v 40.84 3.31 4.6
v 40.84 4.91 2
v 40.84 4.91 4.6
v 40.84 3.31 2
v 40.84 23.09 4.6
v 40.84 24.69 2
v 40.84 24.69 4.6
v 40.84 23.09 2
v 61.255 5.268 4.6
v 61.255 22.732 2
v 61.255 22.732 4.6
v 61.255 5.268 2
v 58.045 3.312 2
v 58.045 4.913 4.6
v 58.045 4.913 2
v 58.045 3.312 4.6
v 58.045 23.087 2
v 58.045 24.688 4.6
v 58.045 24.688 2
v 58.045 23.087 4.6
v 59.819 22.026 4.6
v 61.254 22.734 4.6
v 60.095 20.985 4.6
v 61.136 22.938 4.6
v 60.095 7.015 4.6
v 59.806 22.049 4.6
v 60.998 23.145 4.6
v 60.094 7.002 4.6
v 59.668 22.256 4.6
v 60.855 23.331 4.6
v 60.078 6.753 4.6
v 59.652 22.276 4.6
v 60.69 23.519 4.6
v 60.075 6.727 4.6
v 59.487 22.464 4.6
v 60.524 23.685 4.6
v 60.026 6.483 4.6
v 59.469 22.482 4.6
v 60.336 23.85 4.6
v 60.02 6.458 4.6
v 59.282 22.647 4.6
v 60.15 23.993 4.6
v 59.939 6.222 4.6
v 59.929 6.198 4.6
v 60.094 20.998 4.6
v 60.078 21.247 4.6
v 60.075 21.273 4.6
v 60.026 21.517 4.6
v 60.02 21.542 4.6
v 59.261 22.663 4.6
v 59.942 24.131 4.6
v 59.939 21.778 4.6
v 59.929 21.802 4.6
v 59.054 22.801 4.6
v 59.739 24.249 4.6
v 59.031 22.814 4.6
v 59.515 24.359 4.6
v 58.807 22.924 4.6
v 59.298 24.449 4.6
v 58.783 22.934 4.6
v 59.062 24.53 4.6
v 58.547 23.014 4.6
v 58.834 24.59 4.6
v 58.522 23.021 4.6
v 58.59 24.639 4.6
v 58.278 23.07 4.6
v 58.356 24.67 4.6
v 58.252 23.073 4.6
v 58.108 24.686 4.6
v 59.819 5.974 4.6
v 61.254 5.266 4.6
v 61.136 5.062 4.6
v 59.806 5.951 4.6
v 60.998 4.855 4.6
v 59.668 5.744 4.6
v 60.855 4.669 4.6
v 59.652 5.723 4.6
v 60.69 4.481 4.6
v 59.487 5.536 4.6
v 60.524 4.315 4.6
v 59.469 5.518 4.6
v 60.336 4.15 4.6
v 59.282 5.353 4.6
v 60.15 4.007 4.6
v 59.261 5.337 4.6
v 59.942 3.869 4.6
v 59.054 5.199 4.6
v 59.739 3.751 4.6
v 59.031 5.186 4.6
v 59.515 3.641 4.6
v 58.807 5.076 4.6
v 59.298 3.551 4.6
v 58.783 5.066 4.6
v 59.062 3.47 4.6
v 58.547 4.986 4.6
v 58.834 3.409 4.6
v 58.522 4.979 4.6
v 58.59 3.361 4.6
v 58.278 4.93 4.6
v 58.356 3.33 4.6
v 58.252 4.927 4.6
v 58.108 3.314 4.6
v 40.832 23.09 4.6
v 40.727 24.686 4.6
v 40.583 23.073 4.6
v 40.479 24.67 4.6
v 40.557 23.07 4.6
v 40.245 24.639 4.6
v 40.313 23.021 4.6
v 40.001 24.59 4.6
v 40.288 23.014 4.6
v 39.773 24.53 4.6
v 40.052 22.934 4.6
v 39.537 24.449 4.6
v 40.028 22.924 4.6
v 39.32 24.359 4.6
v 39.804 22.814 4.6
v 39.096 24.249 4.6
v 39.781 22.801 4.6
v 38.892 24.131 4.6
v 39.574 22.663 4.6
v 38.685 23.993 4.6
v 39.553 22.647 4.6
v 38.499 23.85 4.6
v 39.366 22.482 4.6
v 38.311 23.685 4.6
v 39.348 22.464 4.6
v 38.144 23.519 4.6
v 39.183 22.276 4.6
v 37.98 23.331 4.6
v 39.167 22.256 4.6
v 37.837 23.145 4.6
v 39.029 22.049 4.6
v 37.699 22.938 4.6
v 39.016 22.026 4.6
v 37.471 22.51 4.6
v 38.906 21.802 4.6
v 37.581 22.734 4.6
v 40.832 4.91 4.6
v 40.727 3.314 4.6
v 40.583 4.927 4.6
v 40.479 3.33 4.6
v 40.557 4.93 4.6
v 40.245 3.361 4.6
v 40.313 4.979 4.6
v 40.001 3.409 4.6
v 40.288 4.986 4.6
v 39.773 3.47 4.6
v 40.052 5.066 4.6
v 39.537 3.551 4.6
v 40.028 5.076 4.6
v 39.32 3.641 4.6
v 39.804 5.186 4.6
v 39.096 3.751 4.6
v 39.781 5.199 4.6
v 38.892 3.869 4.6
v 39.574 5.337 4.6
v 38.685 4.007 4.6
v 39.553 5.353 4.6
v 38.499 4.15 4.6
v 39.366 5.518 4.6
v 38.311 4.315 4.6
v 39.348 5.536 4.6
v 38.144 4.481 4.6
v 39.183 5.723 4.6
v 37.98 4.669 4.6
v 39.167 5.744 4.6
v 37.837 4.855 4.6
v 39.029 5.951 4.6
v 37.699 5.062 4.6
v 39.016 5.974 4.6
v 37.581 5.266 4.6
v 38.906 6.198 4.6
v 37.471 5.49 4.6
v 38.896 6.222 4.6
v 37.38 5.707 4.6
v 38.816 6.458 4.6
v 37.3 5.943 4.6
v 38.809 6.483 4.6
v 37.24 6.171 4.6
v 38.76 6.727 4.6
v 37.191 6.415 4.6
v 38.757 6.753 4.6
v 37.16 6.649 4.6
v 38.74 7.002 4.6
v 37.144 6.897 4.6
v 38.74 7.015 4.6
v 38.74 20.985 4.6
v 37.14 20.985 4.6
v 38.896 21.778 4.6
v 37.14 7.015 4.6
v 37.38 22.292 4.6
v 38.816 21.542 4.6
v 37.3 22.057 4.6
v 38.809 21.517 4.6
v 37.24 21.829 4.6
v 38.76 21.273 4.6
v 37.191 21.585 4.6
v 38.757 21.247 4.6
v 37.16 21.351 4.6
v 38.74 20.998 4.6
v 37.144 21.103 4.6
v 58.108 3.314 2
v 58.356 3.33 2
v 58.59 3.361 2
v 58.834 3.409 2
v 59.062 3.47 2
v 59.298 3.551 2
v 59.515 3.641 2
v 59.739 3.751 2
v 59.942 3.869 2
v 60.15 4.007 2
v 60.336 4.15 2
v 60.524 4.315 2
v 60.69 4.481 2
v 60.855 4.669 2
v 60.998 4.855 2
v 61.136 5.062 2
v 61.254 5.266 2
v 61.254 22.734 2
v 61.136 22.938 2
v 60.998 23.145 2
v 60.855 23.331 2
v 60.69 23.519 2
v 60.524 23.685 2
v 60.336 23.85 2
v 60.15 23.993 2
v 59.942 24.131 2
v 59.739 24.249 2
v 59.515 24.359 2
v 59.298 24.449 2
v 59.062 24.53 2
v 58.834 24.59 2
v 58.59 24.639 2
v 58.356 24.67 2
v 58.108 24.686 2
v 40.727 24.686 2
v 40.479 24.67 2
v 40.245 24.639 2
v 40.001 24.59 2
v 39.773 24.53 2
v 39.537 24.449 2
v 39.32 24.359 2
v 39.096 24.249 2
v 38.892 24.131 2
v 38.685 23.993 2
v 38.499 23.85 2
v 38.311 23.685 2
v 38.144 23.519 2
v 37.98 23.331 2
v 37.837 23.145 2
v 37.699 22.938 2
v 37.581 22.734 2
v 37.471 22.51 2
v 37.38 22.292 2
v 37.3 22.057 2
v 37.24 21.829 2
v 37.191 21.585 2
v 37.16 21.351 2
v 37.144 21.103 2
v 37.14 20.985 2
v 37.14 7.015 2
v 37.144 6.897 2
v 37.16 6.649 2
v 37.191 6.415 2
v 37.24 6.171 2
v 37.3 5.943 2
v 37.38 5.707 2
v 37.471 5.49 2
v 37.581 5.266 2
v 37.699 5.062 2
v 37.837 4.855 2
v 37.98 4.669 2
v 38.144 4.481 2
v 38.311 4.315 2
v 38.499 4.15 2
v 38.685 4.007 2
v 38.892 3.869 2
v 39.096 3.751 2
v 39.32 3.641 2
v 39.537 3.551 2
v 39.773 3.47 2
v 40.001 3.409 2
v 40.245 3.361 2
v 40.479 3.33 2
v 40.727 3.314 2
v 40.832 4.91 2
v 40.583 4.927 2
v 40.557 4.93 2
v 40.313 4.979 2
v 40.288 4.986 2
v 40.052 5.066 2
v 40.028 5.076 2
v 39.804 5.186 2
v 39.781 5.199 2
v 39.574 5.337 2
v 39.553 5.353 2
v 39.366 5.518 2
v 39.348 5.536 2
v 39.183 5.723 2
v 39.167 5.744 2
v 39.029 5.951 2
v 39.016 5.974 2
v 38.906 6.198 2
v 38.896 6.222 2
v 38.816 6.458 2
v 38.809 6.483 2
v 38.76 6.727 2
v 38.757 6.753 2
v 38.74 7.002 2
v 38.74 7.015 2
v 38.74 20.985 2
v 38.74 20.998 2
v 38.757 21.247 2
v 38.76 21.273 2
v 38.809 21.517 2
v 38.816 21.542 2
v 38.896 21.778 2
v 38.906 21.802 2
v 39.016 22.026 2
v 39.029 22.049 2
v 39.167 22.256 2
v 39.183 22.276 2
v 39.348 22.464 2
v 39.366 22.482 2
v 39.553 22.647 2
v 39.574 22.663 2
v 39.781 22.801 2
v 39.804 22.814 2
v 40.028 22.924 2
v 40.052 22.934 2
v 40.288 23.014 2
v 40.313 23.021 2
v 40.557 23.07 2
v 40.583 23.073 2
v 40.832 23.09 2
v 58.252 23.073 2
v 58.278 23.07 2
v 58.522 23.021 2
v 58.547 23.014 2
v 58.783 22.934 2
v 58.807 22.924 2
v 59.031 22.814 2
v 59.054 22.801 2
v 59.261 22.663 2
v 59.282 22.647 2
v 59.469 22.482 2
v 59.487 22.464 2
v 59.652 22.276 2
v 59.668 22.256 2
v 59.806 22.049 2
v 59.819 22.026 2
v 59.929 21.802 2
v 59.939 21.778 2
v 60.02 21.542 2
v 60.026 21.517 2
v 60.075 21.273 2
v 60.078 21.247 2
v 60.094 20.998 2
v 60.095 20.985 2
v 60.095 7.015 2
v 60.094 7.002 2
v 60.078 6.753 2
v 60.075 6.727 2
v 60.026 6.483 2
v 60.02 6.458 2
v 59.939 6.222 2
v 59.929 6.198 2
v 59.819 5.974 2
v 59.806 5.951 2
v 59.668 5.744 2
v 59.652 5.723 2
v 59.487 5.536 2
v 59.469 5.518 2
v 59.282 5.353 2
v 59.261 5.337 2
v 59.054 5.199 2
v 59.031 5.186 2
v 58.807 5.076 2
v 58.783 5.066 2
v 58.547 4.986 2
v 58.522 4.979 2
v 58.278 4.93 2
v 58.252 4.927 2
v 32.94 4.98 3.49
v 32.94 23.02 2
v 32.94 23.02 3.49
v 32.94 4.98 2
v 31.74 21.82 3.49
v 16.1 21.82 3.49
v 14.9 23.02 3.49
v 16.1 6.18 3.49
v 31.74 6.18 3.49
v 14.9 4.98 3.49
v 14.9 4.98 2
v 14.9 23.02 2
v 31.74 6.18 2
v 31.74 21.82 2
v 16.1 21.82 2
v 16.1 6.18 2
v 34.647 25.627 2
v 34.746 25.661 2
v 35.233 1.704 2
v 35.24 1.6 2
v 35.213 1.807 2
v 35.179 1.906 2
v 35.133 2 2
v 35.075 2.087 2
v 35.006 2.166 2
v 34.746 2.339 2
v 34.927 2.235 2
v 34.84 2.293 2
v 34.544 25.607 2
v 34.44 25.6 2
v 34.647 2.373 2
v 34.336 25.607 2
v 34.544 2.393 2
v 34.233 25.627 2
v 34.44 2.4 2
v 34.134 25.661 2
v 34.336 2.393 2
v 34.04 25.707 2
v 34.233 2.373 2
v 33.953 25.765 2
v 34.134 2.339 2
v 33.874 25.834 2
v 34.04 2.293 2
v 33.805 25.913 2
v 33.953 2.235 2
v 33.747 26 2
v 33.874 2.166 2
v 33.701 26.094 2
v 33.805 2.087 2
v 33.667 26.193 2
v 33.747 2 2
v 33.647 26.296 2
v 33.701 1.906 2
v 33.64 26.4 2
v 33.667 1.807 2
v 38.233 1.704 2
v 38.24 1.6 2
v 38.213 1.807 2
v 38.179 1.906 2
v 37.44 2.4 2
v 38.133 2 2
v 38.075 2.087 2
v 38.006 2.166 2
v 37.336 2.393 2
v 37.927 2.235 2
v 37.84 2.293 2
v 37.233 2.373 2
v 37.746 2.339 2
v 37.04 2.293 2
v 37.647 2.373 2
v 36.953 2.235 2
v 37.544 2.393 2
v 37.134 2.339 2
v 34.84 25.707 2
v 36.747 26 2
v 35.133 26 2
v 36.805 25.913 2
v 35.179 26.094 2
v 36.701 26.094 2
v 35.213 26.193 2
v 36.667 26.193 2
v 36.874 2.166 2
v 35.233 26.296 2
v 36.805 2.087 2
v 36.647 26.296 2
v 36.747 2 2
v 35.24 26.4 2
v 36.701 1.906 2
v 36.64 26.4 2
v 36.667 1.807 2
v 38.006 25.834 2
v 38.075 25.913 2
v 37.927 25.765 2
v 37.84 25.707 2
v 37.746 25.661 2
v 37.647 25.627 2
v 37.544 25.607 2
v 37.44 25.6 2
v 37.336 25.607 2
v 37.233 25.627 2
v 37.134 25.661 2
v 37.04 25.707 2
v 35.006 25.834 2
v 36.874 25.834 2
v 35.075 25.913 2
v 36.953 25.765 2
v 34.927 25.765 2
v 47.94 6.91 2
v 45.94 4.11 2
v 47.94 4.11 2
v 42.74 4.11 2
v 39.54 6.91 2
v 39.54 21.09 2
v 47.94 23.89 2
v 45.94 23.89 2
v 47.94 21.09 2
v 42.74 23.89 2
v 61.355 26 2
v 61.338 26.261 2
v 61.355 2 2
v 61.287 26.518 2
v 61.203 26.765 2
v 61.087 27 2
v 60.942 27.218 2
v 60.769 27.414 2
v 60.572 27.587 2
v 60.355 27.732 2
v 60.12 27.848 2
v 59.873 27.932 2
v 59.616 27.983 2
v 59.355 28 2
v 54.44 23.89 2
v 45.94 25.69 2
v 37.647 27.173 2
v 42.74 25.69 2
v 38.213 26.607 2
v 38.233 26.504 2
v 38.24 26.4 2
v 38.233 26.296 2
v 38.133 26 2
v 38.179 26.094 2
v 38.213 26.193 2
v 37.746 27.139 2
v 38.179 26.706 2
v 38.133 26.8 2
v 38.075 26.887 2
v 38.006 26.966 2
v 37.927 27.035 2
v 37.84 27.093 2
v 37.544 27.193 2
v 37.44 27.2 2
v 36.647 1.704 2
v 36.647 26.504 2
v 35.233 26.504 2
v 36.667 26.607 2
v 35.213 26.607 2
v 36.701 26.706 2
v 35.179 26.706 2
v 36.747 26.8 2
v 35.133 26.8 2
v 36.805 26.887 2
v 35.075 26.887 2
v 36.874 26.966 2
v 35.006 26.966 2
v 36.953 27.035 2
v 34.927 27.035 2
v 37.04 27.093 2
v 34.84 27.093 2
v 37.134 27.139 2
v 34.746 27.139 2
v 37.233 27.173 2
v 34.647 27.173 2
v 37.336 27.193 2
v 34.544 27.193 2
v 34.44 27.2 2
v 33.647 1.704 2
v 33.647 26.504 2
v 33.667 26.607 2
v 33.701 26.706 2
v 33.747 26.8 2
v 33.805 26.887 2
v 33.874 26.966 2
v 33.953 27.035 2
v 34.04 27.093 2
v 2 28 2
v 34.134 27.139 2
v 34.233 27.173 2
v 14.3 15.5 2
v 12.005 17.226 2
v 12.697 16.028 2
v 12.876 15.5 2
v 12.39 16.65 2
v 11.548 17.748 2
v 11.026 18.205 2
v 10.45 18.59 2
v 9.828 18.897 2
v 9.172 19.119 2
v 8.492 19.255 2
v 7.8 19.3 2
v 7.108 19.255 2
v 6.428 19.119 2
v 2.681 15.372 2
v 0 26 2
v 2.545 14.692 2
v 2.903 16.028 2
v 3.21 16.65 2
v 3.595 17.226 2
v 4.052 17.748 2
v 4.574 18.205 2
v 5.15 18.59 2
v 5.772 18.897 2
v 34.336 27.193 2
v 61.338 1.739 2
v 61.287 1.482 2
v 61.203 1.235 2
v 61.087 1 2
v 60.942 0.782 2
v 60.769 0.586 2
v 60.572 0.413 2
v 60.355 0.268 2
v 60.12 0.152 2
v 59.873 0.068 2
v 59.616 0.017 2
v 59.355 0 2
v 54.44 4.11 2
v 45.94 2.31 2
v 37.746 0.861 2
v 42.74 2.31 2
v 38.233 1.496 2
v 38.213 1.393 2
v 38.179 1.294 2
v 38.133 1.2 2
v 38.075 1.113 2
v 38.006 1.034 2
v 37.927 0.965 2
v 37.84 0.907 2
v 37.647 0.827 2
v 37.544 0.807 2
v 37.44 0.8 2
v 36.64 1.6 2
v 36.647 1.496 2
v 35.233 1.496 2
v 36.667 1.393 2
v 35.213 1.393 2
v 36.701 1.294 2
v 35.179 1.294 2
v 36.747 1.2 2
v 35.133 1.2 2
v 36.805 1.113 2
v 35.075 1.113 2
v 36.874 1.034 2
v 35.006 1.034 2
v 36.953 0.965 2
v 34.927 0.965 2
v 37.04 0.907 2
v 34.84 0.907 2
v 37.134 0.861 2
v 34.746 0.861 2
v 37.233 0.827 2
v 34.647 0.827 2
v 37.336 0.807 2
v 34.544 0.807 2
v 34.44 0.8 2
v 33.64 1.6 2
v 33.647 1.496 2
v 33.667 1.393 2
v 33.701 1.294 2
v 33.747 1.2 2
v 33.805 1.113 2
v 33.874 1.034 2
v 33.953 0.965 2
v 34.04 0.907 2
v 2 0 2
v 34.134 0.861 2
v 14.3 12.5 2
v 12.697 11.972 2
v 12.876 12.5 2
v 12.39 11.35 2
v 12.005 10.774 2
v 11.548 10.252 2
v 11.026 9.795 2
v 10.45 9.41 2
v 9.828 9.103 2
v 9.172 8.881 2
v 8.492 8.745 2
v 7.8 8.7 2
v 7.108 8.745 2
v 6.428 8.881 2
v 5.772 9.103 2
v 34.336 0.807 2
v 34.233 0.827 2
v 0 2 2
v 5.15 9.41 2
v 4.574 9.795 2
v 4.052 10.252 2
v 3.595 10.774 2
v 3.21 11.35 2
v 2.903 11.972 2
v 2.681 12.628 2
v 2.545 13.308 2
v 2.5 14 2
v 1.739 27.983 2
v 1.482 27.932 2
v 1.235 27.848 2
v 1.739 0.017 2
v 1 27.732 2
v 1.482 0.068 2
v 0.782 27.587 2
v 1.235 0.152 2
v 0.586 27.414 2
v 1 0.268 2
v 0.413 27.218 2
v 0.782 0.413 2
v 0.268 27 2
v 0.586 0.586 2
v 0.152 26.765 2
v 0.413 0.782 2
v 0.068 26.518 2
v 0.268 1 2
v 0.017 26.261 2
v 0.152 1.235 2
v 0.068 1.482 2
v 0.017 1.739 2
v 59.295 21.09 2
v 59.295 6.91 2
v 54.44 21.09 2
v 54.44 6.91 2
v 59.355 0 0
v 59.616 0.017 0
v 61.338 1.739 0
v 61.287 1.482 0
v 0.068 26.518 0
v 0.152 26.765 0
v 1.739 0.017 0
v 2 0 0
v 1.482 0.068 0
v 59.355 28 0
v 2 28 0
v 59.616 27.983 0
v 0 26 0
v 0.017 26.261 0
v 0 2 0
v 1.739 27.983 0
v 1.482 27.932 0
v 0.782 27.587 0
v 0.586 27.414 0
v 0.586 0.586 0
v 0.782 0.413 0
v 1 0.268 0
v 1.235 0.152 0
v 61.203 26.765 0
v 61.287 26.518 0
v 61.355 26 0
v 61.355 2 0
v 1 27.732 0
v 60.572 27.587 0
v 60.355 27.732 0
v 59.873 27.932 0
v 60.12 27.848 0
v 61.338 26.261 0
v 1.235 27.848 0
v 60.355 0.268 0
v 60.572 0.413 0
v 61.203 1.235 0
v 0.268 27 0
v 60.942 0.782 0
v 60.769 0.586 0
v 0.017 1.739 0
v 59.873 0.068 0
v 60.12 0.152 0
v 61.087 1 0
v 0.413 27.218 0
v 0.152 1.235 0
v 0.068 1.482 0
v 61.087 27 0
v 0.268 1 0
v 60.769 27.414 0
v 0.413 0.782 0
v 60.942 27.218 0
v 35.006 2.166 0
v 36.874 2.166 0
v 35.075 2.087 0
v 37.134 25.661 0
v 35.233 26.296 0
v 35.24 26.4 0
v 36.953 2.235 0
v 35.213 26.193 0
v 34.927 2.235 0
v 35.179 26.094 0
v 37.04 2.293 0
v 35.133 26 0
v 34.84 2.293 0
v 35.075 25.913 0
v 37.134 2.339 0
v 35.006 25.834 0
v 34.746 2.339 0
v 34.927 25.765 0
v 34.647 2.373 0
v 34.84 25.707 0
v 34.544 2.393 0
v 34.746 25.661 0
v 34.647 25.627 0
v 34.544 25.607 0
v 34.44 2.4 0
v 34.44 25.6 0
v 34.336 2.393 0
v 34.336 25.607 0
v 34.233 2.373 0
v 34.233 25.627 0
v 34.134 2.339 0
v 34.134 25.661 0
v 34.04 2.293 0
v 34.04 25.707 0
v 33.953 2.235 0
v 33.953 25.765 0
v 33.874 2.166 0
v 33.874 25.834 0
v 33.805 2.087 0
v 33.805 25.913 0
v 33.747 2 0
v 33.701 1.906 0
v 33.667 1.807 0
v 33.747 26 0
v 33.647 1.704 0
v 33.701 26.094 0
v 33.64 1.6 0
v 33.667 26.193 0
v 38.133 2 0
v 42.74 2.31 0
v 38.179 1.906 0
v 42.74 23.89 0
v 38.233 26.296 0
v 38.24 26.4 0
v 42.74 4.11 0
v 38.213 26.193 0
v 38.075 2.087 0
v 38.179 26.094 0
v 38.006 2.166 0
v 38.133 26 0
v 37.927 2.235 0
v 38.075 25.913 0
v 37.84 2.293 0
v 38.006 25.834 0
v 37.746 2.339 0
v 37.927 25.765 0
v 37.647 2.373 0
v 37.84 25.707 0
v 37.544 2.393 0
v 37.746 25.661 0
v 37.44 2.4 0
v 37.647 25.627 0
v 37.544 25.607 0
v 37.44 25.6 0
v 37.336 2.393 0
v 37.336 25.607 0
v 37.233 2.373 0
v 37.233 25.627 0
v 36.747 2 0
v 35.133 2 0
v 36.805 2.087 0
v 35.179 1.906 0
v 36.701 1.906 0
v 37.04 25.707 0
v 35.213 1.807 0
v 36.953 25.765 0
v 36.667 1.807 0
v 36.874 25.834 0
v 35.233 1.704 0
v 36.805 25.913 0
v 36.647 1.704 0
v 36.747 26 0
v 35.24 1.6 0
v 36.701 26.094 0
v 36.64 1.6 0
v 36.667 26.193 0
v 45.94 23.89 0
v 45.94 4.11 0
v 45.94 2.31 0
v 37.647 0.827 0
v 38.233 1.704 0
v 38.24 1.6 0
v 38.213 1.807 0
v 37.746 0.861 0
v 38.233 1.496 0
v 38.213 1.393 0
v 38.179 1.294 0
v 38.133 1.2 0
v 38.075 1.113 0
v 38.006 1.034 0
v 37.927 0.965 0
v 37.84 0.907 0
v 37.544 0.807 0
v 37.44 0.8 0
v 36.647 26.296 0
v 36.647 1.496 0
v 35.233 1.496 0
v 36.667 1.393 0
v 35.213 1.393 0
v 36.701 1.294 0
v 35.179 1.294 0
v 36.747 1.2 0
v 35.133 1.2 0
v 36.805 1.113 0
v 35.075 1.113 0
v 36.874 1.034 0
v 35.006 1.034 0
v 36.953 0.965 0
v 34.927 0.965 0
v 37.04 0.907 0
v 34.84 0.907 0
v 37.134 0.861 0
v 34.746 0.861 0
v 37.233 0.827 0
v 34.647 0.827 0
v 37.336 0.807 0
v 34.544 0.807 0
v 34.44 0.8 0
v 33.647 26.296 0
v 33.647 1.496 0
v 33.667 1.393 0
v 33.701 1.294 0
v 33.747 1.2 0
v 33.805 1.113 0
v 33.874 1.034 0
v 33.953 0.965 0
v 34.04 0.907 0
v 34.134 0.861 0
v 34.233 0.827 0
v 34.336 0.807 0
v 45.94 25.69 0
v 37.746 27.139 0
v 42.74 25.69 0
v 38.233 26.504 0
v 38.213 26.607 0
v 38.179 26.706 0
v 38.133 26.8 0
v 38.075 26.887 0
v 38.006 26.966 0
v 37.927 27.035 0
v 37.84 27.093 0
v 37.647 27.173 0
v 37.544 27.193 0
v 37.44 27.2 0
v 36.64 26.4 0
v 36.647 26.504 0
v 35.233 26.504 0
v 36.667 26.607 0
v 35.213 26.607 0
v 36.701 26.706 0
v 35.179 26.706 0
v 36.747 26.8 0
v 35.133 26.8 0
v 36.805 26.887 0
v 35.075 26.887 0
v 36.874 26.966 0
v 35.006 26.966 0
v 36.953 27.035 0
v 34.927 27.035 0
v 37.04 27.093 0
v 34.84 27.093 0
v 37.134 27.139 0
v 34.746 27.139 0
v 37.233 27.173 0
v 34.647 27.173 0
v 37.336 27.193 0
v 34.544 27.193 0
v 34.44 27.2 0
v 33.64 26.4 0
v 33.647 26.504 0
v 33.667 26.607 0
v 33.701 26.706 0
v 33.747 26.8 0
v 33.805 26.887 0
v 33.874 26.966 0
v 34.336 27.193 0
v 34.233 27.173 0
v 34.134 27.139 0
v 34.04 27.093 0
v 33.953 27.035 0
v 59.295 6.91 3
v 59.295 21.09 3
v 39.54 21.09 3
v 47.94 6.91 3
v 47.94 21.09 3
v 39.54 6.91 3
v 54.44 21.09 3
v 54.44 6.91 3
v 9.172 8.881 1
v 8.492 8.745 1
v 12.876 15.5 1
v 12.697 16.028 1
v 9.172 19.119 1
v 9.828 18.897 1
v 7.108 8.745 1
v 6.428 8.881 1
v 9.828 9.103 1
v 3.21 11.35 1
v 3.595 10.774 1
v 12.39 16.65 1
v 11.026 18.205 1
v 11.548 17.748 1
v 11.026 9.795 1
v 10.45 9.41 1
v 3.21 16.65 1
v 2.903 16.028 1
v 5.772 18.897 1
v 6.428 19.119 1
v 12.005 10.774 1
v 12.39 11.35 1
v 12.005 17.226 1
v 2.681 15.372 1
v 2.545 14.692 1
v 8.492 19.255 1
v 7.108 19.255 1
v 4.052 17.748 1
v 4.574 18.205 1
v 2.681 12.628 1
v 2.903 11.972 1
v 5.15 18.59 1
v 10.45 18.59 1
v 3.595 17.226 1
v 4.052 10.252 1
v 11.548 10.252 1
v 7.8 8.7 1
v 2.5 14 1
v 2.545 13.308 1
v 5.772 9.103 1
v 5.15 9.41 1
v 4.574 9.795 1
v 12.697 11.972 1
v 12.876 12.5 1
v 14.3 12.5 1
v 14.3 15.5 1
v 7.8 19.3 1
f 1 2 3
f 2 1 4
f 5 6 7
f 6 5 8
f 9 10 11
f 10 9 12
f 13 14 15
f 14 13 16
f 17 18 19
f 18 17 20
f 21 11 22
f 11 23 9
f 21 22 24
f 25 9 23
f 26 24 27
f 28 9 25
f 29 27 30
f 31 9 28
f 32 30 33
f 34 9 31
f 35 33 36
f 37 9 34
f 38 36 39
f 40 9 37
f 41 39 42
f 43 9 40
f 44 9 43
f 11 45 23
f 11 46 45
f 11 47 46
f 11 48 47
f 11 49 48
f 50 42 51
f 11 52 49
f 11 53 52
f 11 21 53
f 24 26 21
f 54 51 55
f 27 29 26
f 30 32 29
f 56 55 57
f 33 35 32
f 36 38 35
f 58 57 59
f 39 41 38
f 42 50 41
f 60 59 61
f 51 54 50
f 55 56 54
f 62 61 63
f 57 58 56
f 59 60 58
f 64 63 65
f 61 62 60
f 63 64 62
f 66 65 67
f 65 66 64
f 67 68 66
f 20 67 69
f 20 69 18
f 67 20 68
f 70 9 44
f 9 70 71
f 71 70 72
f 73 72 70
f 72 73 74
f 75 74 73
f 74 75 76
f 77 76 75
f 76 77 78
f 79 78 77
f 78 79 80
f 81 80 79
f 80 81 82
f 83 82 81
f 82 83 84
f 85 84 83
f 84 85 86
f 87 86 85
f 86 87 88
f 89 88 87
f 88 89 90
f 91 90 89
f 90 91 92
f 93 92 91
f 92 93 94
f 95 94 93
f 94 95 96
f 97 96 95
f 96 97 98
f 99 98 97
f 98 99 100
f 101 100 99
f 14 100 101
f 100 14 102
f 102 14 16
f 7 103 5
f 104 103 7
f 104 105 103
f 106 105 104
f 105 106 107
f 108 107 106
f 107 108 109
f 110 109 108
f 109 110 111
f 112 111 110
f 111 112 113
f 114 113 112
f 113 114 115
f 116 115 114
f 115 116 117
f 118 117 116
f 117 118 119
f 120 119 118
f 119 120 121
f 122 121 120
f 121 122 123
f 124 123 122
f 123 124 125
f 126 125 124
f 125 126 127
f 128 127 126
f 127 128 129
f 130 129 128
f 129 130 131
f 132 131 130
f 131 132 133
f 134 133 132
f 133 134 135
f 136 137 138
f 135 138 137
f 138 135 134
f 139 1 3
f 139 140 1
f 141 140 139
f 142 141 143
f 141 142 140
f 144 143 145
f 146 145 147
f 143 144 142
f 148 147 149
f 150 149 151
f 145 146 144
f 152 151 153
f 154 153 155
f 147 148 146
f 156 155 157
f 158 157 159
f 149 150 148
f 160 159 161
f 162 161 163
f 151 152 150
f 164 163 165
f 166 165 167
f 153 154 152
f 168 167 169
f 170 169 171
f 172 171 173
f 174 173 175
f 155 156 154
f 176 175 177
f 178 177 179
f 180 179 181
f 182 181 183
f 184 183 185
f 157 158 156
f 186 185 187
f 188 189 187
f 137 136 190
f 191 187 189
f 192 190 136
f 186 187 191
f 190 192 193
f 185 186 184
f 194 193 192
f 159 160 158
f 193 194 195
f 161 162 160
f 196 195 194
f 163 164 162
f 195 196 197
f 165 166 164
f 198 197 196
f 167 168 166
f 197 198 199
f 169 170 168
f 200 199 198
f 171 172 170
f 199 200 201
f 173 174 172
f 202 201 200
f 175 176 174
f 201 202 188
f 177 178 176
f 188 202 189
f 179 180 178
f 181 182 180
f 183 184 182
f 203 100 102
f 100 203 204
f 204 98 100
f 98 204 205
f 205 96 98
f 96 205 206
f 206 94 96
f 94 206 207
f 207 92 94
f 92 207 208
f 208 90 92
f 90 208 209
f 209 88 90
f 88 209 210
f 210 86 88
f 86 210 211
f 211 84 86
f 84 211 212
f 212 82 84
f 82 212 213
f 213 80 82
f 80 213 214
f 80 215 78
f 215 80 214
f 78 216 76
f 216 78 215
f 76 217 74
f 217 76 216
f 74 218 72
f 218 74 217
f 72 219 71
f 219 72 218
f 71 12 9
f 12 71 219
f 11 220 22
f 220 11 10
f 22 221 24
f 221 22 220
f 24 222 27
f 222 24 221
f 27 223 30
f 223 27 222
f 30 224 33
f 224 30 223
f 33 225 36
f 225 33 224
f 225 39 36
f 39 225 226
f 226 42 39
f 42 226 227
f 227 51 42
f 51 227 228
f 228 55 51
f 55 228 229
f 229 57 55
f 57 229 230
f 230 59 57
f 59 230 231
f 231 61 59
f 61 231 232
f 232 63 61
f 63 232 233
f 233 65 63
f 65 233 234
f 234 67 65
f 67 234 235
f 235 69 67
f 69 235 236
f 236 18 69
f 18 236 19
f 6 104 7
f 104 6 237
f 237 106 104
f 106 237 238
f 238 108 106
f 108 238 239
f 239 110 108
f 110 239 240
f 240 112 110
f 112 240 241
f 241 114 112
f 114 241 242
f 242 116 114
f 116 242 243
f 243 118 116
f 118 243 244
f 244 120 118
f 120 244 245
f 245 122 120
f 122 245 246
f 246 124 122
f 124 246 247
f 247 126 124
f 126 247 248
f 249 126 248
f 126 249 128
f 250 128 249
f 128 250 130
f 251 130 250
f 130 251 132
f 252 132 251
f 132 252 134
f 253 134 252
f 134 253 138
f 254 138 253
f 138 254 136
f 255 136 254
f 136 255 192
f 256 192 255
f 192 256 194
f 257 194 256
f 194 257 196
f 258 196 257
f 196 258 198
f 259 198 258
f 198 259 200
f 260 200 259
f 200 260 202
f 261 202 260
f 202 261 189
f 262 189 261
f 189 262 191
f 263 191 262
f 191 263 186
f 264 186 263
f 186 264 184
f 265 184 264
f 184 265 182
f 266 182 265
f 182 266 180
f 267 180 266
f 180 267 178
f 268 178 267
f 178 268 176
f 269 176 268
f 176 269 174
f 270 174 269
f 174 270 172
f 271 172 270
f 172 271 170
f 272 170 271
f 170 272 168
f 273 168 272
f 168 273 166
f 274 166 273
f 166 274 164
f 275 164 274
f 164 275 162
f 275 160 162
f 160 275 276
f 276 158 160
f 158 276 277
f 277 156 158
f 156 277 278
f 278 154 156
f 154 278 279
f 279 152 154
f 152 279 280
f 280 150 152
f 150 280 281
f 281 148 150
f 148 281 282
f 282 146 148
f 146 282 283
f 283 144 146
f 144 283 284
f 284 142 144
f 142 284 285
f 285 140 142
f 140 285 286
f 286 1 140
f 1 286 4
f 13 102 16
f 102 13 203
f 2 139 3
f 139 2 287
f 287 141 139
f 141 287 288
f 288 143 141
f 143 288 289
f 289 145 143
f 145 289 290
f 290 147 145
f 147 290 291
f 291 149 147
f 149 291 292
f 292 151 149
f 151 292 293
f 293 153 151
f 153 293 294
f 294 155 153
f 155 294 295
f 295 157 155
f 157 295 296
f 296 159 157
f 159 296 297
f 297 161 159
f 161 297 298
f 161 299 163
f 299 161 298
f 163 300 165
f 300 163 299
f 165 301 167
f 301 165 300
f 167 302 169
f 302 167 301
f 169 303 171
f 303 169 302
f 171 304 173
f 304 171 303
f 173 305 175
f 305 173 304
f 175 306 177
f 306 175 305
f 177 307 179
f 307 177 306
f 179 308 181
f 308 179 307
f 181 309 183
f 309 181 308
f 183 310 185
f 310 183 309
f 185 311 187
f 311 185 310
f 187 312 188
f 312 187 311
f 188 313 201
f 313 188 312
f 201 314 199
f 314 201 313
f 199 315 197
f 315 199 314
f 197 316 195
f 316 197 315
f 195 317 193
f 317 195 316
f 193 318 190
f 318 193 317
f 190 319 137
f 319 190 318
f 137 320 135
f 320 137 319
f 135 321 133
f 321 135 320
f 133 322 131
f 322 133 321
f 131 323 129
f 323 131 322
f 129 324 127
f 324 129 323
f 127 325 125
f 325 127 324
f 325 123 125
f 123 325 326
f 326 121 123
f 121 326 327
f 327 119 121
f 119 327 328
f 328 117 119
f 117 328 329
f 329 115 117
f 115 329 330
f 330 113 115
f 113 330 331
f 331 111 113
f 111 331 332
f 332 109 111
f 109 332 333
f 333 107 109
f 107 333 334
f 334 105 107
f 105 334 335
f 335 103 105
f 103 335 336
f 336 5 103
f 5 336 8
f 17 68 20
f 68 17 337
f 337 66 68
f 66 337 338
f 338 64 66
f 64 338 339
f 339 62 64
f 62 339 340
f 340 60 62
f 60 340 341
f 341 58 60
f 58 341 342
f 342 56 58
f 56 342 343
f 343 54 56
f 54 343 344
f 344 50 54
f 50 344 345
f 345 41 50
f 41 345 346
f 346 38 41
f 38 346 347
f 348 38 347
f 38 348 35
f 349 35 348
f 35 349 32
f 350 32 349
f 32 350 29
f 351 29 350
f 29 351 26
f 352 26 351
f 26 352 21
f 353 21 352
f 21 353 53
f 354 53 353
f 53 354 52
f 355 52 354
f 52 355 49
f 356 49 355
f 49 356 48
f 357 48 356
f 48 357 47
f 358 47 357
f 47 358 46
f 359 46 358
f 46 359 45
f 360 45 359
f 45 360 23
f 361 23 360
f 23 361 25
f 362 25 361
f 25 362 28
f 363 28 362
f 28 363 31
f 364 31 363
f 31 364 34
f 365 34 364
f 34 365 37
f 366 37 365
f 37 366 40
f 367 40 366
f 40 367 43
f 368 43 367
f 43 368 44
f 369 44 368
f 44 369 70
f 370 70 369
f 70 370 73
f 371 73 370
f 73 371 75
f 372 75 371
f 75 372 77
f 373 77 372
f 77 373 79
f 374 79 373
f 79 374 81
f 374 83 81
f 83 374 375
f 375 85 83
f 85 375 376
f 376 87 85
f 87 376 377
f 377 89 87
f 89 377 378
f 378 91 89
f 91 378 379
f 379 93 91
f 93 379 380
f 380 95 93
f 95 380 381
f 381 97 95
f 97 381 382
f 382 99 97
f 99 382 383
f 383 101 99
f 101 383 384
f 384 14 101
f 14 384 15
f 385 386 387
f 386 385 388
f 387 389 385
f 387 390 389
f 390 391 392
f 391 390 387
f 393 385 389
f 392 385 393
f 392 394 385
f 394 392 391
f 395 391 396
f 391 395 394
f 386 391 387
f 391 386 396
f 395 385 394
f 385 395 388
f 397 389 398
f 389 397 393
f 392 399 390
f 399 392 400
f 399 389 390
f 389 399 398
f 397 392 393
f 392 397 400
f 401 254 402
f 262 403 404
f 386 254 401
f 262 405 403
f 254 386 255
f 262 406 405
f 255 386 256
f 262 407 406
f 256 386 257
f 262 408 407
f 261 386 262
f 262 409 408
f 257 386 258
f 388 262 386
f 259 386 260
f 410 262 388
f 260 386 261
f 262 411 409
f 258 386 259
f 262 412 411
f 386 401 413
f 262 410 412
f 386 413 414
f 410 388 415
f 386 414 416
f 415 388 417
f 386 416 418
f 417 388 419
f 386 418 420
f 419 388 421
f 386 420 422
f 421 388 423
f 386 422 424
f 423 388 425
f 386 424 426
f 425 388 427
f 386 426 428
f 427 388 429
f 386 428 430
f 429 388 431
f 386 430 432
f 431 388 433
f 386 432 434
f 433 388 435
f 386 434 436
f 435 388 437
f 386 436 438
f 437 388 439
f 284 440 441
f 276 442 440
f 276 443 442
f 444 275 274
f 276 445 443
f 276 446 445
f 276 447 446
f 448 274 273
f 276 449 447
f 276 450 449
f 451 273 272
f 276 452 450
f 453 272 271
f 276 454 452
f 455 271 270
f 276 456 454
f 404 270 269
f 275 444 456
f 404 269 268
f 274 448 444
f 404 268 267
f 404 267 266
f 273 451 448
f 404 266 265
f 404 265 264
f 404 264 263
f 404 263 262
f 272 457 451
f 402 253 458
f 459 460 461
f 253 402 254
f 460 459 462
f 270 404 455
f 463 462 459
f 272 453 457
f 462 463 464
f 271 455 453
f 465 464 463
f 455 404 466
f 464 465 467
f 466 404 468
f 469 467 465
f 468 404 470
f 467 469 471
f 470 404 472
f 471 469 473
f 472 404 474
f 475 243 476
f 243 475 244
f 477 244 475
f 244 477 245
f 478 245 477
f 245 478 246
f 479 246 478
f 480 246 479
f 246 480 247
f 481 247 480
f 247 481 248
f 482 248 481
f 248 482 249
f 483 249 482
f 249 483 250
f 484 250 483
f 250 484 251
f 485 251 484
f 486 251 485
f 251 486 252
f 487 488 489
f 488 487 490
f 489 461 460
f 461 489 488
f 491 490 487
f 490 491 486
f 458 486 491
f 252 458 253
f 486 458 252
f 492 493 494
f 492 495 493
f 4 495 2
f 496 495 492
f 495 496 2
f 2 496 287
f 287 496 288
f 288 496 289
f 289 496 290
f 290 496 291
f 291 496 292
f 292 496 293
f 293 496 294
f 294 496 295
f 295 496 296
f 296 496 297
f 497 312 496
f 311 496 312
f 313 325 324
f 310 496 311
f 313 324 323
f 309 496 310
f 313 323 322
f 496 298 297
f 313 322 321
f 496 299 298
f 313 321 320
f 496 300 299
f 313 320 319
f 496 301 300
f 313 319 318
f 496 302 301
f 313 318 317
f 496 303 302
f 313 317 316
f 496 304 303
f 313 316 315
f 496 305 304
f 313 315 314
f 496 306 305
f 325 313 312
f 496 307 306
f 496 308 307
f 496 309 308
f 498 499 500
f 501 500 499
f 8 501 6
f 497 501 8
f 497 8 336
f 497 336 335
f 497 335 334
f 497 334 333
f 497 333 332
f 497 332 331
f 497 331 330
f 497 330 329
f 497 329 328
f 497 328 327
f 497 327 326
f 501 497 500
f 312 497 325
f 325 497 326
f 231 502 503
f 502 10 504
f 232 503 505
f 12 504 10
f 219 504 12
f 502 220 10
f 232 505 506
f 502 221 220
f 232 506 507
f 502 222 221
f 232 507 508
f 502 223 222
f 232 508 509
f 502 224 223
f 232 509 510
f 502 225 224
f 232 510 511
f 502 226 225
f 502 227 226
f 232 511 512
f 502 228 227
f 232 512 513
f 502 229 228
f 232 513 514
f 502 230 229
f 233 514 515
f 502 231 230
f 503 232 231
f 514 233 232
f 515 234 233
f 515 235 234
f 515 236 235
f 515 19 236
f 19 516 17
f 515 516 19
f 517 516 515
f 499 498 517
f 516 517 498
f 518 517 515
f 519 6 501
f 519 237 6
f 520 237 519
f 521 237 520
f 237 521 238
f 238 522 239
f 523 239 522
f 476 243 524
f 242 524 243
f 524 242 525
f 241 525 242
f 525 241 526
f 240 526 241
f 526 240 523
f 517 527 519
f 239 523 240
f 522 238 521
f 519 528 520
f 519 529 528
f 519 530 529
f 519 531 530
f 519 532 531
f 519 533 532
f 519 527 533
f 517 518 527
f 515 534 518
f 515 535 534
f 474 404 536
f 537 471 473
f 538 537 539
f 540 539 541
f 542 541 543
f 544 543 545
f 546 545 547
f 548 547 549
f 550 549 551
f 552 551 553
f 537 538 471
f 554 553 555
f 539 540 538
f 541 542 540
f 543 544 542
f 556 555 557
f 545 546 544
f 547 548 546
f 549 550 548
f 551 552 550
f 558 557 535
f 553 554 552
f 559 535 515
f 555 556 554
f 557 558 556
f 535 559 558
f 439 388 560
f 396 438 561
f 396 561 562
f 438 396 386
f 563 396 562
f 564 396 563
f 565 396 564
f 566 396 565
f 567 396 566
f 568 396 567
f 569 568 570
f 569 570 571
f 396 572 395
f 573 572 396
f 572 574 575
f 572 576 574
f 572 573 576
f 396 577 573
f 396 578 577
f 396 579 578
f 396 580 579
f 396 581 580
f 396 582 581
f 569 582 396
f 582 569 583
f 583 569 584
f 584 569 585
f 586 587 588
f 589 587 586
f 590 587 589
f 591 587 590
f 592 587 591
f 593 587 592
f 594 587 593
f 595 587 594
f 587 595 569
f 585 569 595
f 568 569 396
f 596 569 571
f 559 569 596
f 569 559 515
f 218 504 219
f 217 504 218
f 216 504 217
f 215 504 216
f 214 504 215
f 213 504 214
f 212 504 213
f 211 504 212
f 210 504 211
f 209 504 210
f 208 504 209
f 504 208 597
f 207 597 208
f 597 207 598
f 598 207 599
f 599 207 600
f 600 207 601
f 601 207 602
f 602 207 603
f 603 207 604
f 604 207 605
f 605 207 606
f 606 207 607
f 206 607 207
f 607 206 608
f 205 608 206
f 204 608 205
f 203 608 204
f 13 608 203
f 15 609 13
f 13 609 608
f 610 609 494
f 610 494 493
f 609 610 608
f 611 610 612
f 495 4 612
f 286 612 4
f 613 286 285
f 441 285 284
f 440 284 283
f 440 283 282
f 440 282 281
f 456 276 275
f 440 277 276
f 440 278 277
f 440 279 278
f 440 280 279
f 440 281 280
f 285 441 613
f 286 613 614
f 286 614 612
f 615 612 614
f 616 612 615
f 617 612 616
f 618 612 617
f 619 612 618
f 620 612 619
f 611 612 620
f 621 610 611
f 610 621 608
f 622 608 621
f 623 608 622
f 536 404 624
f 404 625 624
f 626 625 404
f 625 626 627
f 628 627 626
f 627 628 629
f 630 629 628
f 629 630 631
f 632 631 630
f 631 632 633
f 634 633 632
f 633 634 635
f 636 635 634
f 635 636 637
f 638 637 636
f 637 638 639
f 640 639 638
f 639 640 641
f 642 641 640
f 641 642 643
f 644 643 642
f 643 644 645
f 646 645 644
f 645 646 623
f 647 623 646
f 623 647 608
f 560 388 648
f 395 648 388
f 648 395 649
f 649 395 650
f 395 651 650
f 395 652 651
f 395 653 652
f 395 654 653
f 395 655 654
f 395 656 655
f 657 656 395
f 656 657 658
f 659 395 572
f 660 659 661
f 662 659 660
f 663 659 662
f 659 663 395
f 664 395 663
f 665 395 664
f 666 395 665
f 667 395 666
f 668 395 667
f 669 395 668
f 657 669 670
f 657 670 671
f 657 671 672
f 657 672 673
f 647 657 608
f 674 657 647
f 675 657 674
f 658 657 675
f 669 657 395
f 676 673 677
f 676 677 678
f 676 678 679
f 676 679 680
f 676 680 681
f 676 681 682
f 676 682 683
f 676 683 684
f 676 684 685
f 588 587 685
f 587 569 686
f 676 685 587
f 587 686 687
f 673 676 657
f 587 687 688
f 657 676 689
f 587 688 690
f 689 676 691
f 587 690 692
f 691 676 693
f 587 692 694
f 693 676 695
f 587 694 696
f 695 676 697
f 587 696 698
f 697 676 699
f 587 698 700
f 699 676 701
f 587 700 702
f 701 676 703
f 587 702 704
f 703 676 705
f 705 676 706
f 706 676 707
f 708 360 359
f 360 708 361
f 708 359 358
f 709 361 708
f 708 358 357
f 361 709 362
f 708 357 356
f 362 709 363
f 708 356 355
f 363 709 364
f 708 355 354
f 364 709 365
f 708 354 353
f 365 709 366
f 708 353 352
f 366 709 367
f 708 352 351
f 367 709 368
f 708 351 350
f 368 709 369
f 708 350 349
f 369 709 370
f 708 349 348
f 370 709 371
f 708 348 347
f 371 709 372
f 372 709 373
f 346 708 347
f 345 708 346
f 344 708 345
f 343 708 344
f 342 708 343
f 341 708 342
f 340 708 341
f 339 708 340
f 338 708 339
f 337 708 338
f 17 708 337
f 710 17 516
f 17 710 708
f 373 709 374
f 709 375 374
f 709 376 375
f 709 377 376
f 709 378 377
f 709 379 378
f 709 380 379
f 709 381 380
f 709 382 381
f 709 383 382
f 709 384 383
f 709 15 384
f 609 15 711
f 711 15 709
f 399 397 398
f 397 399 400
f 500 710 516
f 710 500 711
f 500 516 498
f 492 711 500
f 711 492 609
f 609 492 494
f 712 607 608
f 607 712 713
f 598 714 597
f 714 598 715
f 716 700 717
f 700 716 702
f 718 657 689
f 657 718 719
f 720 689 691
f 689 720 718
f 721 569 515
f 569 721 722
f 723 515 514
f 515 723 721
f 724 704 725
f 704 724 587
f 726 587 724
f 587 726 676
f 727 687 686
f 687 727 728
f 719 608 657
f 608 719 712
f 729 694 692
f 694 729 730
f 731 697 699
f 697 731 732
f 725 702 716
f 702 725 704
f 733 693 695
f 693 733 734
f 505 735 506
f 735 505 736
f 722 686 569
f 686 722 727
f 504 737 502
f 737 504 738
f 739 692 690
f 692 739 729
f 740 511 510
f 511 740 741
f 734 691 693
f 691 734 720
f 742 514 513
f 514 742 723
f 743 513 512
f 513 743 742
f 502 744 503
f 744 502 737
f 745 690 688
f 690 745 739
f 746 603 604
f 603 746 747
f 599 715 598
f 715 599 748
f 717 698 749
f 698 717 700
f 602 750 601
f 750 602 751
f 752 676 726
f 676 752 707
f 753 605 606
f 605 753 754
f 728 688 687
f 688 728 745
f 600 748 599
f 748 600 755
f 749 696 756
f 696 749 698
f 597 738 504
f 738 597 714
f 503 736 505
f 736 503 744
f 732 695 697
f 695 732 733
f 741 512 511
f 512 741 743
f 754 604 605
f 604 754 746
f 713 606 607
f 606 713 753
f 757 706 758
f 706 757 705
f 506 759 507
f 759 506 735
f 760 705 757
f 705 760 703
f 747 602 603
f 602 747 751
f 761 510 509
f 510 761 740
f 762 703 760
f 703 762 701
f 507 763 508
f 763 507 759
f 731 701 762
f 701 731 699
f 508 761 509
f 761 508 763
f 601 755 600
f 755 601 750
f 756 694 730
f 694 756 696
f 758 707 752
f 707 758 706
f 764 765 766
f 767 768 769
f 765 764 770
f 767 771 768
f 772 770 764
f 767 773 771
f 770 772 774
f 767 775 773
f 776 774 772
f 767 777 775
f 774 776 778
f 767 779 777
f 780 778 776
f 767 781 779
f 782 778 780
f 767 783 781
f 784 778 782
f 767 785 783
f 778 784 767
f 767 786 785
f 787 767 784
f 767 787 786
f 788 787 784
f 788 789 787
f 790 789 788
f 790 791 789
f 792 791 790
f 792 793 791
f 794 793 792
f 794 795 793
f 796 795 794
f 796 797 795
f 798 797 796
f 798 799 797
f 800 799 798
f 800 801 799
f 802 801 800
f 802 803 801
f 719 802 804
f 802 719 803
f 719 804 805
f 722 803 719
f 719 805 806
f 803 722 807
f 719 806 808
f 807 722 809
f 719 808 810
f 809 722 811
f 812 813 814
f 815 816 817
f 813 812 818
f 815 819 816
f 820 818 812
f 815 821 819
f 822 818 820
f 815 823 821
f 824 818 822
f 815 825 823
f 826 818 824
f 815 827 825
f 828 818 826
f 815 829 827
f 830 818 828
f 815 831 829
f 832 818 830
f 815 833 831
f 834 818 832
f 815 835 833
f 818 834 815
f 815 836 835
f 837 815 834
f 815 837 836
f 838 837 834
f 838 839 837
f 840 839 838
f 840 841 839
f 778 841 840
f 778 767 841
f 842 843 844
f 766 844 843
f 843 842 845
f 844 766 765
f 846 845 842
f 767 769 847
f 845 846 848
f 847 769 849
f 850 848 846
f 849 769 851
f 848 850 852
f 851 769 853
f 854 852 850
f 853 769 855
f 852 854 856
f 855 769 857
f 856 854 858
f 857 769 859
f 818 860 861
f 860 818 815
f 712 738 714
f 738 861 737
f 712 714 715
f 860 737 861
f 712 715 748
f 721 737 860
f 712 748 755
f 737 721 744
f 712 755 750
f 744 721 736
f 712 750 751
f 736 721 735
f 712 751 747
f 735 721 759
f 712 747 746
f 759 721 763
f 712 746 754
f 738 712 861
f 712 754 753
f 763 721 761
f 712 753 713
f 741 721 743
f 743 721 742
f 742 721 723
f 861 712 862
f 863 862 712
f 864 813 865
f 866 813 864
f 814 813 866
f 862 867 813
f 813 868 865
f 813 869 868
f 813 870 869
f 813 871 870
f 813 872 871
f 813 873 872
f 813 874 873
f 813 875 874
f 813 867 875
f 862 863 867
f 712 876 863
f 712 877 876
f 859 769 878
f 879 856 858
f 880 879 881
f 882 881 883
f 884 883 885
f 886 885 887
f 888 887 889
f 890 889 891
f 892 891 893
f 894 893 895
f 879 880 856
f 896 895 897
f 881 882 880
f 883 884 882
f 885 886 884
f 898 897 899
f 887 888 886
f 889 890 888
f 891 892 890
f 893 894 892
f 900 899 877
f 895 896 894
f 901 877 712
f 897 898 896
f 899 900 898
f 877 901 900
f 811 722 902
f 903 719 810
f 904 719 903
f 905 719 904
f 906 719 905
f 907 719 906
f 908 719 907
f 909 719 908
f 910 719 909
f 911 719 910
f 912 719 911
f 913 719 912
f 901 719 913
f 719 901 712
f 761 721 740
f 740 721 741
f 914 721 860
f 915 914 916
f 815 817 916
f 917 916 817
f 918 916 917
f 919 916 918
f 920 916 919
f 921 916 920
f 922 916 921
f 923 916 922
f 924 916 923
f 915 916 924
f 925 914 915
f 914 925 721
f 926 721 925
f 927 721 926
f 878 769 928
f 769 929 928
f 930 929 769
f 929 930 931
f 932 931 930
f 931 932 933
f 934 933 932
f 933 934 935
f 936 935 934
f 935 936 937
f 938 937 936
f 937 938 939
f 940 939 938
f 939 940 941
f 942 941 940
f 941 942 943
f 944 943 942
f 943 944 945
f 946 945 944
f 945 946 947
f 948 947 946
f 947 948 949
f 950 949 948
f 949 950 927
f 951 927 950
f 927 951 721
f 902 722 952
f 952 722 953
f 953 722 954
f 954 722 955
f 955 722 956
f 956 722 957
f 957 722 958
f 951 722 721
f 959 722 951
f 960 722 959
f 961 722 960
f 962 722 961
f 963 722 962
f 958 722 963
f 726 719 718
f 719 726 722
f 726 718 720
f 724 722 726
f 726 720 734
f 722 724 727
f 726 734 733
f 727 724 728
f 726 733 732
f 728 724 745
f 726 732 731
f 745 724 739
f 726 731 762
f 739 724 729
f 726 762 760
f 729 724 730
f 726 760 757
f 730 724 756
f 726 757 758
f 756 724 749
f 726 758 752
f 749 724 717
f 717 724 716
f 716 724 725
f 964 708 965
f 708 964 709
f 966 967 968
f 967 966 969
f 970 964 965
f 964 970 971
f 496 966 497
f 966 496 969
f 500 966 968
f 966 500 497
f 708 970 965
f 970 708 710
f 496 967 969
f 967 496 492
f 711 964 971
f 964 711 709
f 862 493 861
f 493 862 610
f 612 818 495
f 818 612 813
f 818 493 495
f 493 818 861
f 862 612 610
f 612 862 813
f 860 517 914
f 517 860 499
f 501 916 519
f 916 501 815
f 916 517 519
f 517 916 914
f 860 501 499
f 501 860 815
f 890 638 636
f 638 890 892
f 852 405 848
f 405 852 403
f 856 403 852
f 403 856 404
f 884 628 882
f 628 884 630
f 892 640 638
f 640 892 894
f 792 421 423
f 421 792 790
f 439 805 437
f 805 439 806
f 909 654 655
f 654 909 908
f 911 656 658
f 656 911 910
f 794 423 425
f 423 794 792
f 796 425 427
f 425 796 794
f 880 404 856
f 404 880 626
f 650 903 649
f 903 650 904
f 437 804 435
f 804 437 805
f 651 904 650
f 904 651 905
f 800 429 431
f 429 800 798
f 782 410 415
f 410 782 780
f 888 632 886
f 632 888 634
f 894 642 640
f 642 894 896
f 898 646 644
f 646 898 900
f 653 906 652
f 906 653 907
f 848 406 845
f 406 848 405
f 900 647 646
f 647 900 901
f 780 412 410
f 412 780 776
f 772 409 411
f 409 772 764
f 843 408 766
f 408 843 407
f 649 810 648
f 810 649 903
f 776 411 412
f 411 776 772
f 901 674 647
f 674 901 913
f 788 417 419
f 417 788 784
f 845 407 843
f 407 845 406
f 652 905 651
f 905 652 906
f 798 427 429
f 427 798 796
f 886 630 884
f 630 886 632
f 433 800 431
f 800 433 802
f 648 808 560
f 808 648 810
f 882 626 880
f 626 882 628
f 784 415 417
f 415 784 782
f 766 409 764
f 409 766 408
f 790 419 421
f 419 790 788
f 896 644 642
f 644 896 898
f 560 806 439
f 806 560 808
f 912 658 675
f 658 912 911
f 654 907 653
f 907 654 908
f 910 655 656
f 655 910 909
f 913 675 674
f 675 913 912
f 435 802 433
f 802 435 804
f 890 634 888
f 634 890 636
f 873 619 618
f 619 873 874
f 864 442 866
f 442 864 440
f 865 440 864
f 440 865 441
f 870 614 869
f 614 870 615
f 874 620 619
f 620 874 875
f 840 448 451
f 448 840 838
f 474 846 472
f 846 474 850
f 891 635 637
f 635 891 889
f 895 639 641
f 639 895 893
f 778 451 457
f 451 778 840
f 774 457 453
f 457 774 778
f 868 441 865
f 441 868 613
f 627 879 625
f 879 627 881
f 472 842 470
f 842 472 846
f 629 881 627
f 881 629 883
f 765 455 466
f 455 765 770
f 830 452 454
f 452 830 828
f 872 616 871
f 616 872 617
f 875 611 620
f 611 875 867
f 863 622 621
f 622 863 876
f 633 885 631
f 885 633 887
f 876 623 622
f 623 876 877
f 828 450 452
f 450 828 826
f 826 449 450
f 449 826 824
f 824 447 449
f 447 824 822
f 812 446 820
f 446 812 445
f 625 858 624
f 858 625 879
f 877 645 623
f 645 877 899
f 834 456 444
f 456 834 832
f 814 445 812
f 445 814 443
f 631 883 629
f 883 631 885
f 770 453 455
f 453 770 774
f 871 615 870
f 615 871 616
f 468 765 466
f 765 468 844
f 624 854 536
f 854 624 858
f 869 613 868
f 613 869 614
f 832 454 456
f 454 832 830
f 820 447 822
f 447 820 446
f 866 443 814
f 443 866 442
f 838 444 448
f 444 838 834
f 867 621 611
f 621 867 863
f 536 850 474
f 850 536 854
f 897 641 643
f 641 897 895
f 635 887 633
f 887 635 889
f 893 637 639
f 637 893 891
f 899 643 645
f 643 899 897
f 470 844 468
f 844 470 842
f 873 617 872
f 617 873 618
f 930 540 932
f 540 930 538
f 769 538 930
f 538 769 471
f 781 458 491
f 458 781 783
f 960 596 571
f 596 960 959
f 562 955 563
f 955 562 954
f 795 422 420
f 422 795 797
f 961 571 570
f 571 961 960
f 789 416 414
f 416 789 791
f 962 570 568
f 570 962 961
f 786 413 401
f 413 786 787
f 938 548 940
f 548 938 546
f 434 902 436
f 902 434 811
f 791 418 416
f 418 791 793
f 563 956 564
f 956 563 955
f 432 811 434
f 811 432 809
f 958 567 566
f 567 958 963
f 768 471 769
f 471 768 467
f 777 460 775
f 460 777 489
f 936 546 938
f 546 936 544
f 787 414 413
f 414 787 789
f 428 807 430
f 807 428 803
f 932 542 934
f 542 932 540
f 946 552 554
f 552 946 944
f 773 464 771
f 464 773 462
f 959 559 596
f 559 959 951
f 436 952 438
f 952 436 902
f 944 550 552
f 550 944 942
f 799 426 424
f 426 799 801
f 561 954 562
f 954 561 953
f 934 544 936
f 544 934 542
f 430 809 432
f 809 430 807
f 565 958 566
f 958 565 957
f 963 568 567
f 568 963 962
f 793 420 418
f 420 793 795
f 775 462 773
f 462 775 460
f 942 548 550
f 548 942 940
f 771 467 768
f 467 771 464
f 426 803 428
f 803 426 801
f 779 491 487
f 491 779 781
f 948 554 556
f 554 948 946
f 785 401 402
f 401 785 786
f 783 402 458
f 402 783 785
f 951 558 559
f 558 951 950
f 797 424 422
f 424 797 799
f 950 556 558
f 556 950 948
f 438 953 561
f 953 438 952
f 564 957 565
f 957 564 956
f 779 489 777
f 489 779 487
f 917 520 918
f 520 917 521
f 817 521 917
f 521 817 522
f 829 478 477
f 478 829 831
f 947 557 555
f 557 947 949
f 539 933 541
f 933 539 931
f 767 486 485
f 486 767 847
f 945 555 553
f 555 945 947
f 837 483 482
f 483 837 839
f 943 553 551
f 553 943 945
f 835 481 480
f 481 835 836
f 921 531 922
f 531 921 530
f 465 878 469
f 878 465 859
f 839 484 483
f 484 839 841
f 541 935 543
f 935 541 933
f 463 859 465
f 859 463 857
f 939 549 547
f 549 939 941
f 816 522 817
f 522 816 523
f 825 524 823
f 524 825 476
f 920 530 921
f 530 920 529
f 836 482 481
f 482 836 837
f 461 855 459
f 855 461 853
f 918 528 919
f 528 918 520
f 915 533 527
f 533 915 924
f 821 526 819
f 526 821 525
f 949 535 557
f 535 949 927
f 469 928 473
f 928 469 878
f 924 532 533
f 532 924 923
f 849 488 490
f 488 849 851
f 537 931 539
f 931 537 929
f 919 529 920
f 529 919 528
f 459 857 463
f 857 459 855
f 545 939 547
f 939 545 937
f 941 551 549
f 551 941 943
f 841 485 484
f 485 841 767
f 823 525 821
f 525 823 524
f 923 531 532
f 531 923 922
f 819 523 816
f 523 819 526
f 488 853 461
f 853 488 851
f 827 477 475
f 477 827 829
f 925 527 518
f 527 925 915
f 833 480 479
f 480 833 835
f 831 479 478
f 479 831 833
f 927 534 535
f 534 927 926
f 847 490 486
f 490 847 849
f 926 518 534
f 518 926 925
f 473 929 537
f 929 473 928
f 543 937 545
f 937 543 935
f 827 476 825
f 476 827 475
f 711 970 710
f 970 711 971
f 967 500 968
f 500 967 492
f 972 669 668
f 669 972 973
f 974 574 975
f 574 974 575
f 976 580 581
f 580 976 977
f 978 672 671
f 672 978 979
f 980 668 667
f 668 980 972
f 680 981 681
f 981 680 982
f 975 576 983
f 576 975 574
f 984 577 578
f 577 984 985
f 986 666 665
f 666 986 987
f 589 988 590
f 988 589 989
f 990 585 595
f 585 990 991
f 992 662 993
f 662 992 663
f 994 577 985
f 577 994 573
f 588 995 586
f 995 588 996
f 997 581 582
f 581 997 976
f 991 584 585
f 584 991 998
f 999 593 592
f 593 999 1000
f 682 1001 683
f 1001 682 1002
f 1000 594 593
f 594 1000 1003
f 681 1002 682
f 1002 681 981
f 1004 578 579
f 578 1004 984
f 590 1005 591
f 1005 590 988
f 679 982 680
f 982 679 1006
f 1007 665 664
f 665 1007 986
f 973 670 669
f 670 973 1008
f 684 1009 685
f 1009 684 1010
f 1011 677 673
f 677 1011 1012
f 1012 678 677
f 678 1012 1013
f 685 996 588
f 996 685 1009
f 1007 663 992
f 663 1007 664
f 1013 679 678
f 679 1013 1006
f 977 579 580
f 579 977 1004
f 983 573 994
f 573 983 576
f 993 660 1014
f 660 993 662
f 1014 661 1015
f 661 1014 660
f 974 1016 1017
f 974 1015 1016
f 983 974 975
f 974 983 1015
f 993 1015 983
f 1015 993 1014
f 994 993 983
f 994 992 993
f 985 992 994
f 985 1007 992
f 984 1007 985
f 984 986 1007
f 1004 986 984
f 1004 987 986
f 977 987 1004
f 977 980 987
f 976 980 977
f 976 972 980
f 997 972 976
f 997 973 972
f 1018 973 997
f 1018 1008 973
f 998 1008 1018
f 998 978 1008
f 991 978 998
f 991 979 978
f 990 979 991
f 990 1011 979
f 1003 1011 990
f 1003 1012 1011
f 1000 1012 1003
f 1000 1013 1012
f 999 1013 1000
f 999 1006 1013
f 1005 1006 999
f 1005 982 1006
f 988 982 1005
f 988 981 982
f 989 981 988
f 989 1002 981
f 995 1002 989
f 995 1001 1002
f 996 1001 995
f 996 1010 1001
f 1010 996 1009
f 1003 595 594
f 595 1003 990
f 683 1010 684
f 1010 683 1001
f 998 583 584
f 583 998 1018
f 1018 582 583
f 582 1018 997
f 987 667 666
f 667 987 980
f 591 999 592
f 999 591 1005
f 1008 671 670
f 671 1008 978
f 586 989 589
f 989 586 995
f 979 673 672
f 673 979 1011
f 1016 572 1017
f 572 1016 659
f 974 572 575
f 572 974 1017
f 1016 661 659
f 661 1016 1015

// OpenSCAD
// Spot Clicker - bench holder (November 16, 2026)
// Holds the XIAO, the driver perfboard and the motor on one base while you develop,
// so plugging and unplugging USB can't jerk the XIAO around on its wires.
// The XIAO sits parts-up between two end frames: the back frame stops it sliding when
// you push a cable in, and the front frame (under the USB-C) stops it when you pull.
// A small zip tie or rubber band through the two slots holds it down.
// Print flat, no supports. Units: mm. X = length (USB-C end at +X), Y = width, Z = up.

/* [Fit] */
fit = 0.2;          // clearance around the XIAO and the perfboard
base_t = 2.0;       // base plate thickness
ped_h = 1.0;        // pedestal under the XIAO, keeps its edge solder joints off the base
frame_w = 1.6;      // end-frame wall thickness
tie_x = 5.4;        // zip-tie position along the XIAO: over the unused D5/D8 pads and the metal shield, on the pedestal
$fn = 48;

// ---------- published sizes ----------
xiao_l = 20.955; xiao_w = 17.78; xiao_r = 1.905; xiao_t = 1.6;  // Seeed v1.2 KiCad outline
usb_over = 1.51;                                                 // USB-C shell past the board edge
perf = 15.24;                                                    // 6 x 6 holes
motor_d = 10.0;

// ---------- layout ----------
W = 28;                                        // base width
Yc = W / 2;
margin = 2.5;
motor_c = [margin + motor_d / 2 + 0.3, Yc];
perf_x0 = motor_c[0] + motor_d / 2 + 0.3 + 3.0;
perf_x1 = perf_x0 + perf + 2 * fit;
x0 = perf_x1 + 1.2 + 6.0;                      // XIAO antenna end
x1 = x0 + xiao_l;                              // XIAO USB end (board edge)
front_x = x1 + usb_over - 0.15;                // front frame stays just behind the USB-C opening
L = front_x + 0.1;
y0 = Yc - xiao_w / 2;
z_ped = base_t + ped_h;                        // XIAO underside
z_top = z_ped + xiao_t;                        // XIAO top surface
echo(str("HOLDER L x W = ", L, " x ", W, " mm"));

module board2d(o = 0) { translate([x0, y0]) offset(r = o) translate([xiao_r, xiao_r]) offset(r = xiao_r) square([xiao_l - 2 * xiao_r, xiao_w - 2 * xiao_r]); }
module rbox(size, r) { translate([r, r, 0]) linear_extrude(size[2]) offset(r = r) square([size[0] - 2 * r, size[1] - 2 * r]); }

module holder() {
  difference() {
    union() {
      rbox([L, W, base_t], 2.0);
      // pedestal under the middle of the XIAO, clear of the edge pads
      translate([x0 + 0.6, y0 + 1.8, base_t - 0.01]) cube([xiao_l - 1.2, xiao_w - 3.6, ped_h + 0.01]);
      // end frames around the board outline; the long edges stay open for the soldered wires
      intersection() {
        translate([0, 0, base_t - 0.01]) linear_extrude(z_top - base_t + 0.01) difference() { board2d(fit + frame_w); board2d(fit); }
        union() {
          translate([x0 - 5, -1, 0]) cube([1.9 + 5, W + 2, 20]);               // back frame (antenna end)
          translate([x1 - 1.85, -1, 0]) cube([front_x - (x1 - 1.85), W + 2, 20]); // front frame (USB end)
        }
      }
      // perfboard pocket: low walls locate it; stick it down on 1 mm foam tape
      translate([perf_x0 - 1.2, Yc - perf / 2 - fit - 1.2, base_t - 0.01]) difference() {
        cube([perf + 2 * fit + 2.4, perf + 2 * fit + 2.4, 1.5]);
        translate([1.2, 1.2, -1]) cube([perf + 2 * fit, perf + 2 * fit, 4]);
      }
    }
    // groove across the pedestal under the XIAO's BAT pads, for the later battery wires
    translate([x0 + 9.0, y0 - 1, base_t]) cube([6.5, xiao_w + 2, ped_h + 1]);
    // zip-tie slots either side of the XIAO
    for (y = [y0 - fit - 2.6, y0 + xiao_w + fit + 0.8]) translate([x0 + tie_x - 1.6, y, -1]) cube([3.2, 1.8, 10]);
    // motor recess (the motor's own sticky pad holds it) with a notch for its leads
    translate([motor_c[0], motor_c[1], base_t - 1.0]) cylinder(d = motor_d + 0.6, h = 5);
    translate([motor_c[0], motor_c[1] - 1.5, base_t - 1.0]) cube([motor_d / 2 + 1.5, 3, 5]);
    // tie points for thread or twist ties, beside the wire gap between the perfboard and the XIAO
    for (y = [1.6, W - 1.6]) for (dx = [-1.5, 1.5]) translate([perf_x1 + 4.2 + dx, y, -1]) cylinder(d = 1.6, h = 10);
  }
}

module xiao_ghost() {
  color([0.1, 0.4, 0.35]) translate([0, 0, z_ped]) linear_extrude(xiao_t) board2d();
  color([0.75, 0.75, 0.78]) translate([x0 + 15.113, y0 + xiao_w - 13.39, z_top]) cube([7.35, 9.0, 3.3]);
}

part = "holder"; // [holder, preview]
if (part == "preview") {
  color([0.95, 0.55, 0.15]) holder();
  xiao_ghost();
  color([0.82, 0.68, 0.42]) translate([perf_x0 + fit, Yc - perf / 2, base_t + 1.0]) cube([perf, perf, 1.5]);
  color([0.7, 0.7, 0.72]) translate([motor_c[0], motor_c[1], base_t - 1.0]) cylinder(d = motor_d, h = 2.7);
} else holder();
